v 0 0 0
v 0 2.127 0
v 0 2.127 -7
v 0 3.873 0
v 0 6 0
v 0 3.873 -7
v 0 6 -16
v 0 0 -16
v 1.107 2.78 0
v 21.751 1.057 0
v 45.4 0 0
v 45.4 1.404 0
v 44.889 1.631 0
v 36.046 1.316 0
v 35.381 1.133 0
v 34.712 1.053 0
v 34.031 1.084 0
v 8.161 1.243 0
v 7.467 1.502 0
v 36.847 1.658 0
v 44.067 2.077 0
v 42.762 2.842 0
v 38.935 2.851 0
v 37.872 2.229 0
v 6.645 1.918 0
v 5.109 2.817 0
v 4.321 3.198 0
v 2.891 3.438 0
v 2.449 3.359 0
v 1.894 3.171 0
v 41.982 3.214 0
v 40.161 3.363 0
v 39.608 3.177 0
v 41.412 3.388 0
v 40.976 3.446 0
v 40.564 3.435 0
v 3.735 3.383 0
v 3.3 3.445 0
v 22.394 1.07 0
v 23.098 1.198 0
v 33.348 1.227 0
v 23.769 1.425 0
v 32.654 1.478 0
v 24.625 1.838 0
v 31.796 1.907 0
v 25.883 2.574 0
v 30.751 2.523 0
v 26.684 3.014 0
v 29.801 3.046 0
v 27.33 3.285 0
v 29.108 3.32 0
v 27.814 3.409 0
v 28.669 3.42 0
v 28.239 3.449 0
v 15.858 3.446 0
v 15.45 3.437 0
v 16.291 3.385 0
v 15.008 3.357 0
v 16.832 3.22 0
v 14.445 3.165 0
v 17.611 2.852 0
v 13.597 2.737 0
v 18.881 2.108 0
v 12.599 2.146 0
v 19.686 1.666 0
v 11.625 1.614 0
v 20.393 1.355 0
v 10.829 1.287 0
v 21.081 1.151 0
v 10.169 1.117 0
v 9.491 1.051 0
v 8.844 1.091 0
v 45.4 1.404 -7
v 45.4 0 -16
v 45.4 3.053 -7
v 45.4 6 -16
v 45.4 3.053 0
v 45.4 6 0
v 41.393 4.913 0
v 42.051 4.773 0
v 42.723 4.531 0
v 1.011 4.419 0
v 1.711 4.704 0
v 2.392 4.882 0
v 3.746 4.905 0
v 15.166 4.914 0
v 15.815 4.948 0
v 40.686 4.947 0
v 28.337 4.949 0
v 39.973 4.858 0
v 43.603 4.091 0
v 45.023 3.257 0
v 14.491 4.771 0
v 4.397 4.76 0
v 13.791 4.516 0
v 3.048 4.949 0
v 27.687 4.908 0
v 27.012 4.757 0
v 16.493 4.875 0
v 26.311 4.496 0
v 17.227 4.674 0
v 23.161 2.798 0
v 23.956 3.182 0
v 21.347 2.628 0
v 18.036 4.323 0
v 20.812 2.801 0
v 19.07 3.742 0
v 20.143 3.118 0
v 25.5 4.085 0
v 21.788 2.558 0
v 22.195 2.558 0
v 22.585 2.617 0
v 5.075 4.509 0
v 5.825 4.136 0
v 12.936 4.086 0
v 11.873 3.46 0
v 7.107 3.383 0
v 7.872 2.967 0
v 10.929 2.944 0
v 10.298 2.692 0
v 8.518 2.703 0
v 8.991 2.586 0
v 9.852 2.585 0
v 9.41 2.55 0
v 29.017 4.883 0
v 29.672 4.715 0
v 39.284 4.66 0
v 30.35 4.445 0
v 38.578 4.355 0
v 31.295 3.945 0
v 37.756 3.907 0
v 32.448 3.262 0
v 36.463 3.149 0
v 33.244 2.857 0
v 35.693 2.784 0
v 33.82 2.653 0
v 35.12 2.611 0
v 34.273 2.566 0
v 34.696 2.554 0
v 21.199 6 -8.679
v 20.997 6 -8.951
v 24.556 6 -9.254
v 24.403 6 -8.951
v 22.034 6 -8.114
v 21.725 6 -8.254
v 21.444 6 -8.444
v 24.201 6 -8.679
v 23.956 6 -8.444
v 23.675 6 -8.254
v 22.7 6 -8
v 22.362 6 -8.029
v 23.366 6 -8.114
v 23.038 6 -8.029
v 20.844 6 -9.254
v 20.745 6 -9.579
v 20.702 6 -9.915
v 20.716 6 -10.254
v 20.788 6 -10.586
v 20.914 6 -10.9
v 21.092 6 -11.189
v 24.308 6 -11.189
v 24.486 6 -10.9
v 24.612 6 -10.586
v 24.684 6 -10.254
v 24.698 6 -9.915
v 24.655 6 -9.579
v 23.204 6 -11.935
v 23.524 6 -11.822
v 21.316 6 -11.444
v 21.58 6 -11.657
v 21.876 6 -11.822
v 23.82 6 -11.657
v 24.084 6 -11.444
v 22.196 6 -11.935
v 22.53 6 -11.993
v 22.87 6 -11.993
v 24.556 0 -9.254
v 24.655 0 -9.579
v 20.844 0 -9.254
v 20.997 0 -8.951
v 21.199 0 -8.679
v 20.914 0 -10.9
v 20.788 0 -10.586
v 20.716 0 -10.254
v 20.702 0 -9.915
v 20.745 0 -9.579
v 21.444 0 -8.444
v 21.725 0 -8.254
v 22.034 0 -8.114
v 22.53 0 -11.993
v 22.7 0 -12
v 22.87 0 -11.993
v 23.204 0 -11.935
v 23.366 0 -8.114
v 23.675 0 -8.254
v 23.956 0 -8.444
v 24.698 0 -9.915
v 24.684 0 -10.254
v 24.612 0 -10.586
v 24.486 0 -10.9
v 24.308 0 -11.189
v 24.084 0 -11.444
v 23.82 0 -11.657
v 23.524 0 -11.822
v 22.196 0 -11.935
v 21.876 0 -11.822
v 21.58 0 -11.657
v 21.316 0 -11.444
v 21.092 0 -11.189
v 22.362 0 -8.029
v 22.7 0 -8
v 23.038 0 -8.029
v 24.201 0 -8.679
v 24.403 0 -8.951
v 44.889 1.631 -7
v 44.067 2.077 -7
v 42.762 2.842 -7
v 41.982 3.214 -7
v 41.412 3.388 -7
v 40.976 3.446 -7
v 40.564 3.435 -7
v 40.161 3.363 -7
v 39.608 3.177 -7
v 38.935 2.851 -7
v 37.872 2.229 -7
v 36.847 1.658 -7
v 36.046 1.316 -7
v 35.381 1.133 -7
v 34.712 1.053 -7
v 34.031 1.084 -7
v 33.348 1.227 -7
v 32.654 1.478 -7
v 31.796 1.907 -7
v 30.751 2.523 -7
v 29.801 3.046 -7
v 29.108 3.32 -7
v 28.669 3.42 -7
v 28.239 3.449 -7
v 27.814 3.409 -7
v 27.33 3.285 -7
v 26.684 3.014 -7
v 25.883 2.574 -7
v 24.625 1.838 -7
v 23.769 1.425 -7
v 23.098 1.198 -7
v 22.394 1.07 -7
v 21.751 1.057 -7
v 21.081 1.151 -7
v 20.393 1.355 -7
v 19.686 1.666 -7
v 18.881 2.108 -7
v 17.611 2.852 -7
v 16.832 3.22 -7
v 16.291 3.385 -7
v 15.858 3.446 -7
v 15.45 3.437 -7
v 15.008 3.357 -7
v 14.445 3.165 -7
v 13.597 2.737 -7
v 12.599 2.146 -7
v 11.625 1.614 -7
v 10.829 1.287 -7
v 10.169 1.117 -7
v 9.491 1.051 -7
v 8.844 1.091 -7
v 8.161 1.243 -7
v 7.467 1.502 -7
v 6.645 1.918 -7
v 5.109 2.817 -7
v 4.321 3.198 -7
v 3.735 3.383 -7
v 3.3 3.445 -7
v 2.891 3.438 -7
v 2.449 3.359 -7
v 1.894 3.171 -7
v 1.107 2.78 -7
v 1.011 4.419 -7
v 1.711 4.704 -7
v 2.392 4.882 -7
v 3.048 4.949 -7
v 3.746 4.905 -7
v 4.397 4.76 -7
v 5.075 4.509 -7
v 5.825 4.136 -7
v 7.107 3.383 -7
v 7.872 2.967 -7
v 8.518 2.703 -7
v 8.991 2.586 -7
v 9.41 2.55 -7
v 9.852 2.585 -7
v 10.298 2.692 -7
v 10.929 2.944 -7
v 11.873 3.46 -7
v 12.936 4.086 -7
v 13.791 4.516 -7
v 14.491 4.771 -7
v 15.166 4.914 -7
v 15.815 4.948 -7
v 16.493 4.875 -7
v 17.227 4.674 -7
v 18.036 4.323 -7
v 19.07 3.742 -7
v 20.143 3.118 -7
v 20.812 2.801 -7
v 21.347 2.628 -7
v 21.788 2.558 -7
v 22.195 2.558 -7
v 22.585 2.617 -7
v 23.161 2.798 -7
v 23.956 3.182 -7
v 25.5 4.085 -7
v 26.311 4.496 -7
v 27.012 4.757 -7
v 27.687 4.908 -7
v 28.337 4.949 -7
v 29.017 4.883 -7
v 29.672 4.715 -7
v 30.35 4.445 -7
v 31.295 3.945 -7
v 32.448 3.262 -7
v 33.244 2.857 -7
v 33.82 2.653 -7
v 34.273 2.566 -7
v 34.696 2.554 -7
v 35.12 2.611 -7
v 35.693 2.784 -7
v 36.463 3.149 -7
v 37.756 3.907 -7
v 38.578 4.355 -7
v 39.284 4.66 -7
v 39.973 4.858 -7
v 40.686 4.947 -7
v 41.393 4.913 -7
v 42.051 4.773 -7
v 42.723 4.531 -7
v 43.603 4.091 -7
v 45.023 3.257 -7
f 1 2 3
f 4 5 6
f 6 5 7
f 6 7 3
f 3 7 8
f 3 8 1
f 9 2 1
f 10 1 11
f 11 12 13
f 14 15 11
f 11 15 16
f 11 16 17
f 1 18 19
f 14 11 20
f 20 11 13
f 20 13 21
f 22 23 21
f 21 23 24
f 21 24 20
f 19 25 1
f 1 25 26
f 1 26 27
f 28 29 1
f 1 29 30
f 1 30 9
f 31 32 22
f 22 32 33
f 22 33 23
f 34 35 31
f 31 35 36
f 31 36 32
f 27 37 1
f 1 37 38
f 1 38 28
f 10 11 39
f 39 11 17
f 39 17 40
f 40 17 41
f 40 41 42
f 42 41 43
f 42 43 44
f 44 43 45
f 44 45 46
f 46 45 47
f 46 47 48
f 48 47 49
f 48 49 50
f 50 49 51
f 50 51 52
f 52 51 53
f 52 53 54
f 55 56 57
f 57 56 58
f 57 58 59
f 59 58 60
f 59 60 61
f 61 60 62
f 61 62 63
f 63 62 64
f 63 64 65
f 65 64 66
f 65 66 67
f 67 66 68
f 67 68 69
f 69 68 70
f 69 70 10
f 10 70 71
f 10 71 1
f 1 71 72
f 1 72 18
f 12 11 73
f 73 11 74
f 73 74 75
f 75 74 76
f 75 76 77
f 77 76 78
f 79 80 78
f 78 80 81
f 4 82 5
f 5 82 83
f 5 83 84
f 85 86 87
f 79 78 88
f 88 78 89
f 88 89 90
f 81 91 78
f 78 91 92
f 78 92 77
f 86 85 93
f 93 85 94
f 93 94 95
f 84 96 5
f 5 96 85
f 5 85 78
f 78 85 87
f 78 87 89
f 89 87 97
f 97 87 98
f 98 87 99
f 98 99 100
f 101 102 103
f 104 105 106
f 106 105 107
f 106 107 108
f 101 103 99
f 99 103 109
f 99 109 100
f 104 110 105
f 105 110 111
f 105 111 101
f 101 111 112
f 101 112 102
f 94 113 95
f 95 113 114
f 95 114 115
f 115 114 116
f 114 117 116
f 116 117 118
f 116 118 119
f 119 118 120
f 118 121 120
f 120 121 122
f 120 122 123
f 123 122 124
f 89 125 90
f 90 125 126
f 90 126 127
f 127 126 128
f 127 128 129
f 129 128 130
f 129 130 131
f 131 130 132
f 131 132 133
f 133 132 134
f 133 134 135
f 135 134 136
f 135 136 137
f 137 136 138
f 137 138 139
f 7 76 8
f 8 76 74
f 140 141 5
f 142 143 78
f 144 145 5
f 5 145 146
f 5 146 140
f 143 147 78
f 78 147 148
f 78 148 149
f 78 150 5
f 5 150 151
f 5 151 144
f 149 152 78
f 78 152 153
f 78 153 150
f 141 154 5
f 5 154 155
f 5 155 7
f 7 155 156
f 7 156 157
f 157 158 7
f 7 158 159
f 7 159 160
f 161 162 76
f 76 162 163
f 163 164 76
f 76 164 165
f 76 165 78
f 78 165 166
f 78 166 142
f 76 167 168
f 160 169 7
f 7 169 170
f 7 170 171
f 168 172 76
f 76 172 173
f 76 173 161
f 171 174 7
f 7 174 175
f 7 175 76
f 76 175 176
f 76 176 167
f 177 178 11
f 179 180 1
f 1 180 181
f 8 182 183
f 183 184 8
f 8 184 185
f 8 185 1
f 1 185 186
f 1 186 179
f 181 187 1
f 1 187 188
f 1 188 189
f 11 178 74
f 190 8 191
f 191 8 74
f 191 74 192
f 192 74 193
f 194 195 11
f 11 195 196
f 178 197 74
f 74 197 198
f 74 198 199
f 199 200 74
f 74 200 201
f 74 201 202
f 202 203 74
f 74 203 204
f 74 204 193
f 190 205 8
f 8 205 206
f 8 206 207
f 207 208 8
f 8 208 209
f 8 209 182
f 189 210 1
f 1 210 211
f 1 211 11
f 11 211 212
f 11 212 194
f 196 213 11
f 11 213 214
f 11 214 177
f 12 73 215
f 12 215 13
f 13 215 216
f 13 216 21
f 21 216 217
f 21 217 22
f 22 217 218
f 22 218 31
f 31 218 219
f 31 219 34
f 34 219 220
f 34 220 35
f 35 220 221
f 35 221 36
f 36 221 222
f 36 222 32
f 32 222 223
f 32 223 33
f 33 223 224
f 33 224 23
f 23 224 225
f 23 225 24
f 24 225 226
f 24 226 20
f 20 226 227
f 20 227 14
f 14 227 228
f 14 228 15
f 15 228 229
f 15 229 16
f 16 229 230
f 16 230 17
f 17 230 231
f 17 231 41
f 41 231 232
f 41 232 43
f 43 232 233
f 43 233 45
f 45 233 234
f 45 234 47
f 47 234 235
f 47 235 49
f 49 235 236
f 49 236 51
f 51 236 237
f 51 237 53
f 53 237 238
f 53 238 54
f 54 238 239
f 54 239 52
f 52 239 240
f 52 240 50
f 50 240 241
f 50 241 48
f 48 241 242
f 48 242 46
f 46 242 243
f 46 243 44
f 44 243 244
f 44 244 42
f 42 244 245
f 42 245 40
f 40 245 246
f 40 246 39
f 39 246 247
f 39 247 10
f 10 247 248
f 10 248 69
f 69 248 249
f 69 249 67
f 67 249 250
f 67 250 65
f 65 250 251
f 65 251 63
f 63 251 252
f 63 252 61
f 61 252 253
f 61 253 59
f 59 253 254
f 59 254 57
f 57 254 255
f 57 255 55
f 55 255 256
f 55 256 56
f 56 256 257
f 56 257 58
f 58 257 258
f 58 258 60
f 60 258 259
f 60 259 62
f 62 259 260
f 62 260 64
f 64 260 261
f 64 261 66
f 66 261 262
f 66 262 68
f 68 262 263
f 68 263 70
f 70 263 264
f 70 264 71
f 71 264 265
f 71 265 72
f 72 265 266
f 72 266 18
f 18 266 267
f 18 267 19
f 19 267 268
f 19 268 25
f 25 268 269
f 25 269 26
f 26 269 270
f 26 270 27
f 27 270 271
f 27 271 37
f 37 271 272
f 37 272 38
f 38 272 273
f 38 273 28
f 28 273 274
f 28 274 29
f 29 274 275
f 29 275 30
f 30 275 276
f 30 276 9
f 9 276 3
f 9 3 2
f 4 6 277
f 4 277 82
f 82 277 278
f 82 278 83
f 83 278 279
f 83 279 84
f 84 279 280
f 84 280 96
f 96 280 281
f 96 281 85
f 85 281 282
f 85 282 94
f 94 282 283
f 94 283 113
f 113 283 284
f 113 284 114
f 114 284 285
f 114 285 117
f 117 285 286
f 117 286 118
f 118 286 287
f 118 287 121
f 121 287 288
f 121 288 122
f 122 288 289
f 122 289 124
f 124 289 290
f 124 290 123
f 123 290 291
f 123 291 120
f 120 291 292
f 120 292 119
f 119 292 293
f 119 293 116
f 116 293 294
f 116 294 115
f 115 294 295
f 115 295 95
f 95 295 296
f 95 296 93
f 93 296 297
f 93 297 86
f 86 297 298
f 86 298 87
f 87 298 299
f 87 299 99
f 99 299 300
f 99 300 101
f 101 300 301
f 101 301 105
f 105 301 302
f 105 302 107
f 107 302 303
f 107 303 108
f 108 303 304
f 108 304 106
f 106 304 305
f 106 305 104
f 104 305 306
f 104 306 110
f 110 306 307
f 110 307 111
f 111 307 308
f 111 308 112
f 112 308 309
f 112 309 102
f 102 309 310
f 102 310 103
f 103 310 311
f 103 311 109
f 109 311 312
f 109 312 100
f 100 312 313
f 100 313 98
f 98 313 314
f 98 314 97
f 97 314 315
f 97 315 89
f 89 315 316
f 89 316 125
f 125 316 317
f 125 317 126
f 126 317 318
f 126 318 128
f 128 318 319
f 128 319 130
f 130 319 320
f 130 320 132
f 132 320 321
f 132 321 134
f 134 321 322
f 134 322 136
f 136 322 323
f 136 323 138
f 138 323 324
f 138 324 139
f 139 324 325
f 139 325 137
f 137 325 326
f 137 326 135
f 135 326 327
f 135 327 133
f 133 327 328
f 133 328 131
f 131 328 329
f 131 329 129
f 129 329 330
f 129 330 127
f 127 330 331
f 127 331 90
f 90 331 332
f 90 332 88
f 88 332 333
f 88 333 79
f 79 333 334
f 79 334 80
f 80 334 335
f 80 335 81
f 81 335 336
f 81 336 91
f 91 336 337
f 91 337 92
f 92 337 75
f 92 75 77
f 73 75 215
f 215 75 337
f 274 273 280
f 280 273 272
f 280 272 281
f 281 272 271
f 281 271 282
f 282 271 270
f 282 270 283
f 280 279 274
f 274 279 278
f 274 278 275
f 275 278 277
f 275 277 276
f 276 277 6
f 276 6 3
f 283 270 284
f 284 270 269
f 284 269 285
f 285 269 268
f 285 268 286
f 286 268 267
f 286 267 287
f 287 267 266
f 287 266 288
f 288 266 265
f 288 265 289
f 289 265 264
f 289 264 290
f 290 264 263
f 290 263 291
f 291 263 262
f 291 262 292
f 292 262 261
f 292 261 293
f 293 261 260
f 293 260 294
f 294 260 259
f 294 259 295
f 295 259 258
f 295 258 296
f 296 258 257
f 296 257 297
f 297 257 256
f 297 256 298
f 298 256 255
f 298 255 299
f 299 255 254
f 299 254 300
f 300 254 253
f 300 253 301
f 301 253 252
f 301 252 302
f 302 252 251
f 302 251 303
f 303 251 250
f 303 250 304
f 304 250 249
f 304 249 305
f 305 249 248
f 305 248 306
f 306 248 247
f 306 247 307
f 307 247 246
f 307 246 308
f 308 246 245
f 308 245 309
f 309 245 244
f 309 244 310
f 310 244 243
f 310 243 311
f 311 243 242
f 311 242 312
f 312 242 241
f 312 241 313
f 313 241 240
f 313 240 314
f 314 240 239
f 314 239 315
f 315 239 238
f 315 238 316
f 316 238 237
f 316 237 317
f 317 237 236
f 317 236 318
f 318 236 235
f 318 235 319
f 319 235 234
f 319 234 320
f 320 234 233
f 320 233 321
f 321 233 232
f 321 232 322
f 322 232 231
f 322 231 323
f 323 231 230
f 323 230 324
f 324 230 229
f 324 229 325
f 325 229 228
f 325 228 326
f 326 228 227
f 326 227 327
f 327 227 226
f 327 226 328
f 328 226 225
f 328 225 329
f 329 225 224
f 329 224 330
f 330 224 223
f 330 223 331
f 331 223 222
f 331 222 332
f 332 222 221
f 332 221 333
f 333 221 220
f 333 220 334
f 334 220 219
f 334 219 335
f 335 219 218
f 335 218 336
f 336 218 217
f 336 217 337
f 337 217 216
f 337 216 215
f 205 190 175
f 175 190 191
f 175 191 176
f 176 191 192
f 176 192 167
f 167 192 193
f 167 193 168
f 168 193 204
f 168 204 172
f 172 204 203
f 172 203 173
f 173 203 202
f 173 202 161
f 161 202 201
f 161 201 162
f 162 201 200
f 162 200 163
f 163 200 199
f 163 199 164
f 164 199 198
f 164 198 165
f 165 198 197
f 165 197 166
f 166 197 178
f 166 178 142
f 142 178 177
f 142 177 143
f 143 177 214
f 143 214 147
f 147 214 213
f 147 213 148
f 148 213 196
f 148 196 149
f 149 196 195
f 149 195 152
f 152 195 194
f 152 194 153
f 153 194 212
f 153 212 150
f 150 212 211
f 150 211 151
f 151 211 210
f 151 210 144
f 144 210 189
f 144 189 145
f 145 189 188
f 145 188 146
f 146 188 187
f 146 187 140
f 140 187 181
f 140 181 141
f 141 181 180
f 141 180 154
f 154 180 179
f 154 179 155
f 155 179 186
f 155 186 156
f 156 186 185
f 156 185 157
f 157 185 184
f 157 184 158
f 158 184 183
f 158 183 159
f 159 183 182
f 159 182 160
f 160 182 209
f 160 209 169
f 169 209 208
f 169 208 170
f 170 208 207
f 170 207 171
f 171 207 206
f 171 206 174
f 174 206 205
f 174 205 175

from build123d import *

# Parameters (mm, degrees)
SKETCH1_W               = 45.4
SKETCH1_H               = 16
BOSS_EXTRUDE1_DEPTH     = 6
CUT_EXTRUDE_THIN1_START = -7
CUT_EXTRUDE_THIN1_DEPTH = 7
SKETCH3_R               = 2
CUT_EXTRUDE4_DEPTH      = 10


# Read off the part's stored shape, not the designer's step: Cut-Extrude-Thin1
with BuildPart() as part:
    # Sketch1 → Boss-Extrude1 (new body)
    with BuildSketch(Plane(origin=(0, 0, 0), x_dir=(1, 0, 0), z_dir=(0, 1, 0))):
        with Locations((22.7, 8)):
            Rectangle(SKETCH1_W, SKETCH1_H)
    extrude(amount=BOSS_EXTRUDE1_DEPTH)

    # Cut-Extrude-Thin1 outline → Cut-Extrude-Thin1 (cut)
    with BuildSketch(Plane.XY.offset(CUT_EXTRUDE_THIN1_START)):
        with BuildLine():
            Line((0, 3.873267445), (0, 2.126817741))
            add(Edge.make_bspline(
                [(0, 2.126817741), (0.02703382, 2.142781723), (0.054175194, 2.15885723), (0.199802786, 2.245191001), (0.318904635, 2.316609427), (0.547456156, 2.453801634), (0.659404505, 2.520881504), (1.223235747, 2.852563391), (1.659129881, 3.090081368), (2.304021331, 3.325798968), (2.516053427, 3.383726921), (2.935514936, 3.449959162), (3.142910642, 3.458369463), (3.767815623, 3.407863189), (4.19408996, 3.269324885), (5.065062464, 2.858321616), (5.50706417, 2.591187682), (6.431683782, 2.036459554), (6.918071796, 1.744087969), (7.740579172, 1.381104099), (8.030251466, 1.273290225), (8.645579036, 1.112784531), (8.970876862, 1.062103691), (9.62744136, 1.04193798), (9.958039149, 1.072725046), (10.589024972, 1.202402245), (10.888026805, 1.299103066), (11.452805261, 1.525556109), (11.718970495, 1.655461765), (12.226161625, 1.926507336), (12.467522401, 2.067716558), (13.170775959, 2.486480844), (13.615931783, 2.76197178), (14.271958768, 3.092921072), (14.487846746, 3.188741776), (14.917075207, 3.339470443), (15.130272064, 3.394343156), (15.548156295, 3.45349324), (15.75427037, 3.457987949), (16.172816849, 3.416681909), (16.383607329, 3.371026255), (17.022785721, 3.167898464), (17.460128234, 2.943866168), (18.351607435, 2.430583519), (18.80881458, 2.139021166), (19.556952632, 1.727762653), (19.816902465, 1.594900544), (20.369439987, 1.356573587), (20.663597747, 1.251179423), (21.283479066, 1.10005025), (21.609016745, 1.054814487), (22.266771634, 1.045847552), (22.596742032, 1.083145554), (23.222365778, 1.221962497), (23.519472543, 1.321980696), (24.079382347, 1.553570863), (24.342766312, 1.684865845), (25.098173394, 2.093571519), (25.557376229, 2.385193139), (26.452683258, 2.906328822), (26.887914853, 3.135436001), (27.746180841, 3.425860973), (28.158539125, 3.480470405), (28.786299796, 3.408170386), (28.995968884, 3.359210465), (29.423947166, 3.216861002), (29.641162564, 3.124110993), (30.296525986, 2.802852497), (30.738363236, 2.530814809), (31.671813969, 1.97293848), (32.163881244, 1.683121755), (33.000138587, 1.332534814), (33.296467876, 1.230806571), (33.92016789, 1.088242868), (34.248675292, 1.048205652), (34.907059265, 1.051622384), (35.233888776, 1.094812192), (35.854823483, 1.241938496), (36.150275582, 1.345434697), (36.705793014, 1.582138569), (36.966535771, 1.714713739), (37.46618007, 1.988138513), (37.705434355, 2.129457341), (38.404356673, 2.547696158), (38.845749072, 2.818233186), (39.500657349, 3.136109655), (39.717214125, 3.227177696), (40.144711185, 3.365892553), (40.354662828, 3.412992927), (40.773030437, 3.457293529), (40.980435207, 3.454517198), (41.398028958, 3.398951825), (41.610067714, 3.345773528), (42.253288523, 3.123436571), (42.689155986, 2.891534001), (43.585746337, 2.368048308), (44.045555086, 2.076103322), (44.804100753, 1.668638949), (45.068118248, 1.538339158), (45.366705882, 1.416907758), (45.383339369, 1.410218973), (45.4, 1.403598957)],
                knots=[0.01380316, 0.01380316, 0.01380316, 0.01380316, 0.015625, 0.015625, 0.0234375, 0.0234375, 0.03125, 0.03125, 0.0625, 0.0625, 0.078125, 0.078125, 0.09375, 0.09375, 0.125, 0.125, 0.15625, 0.15625, 0.1875, 0.1875, 0.203125, 0.203125, 0.21875, 0.21875, 0.234375, 0.234375, 0.25, 0.25, 0.265625, 0.265625, 0.28125, 0.28125, 0.3125, 0.3125, 0.328125, 0.328125, 0.34375, 0.34375, 0.359375, 0.359375, 0.375, 0.375, 0.40625, 0.40625, 0.4375, 0.4375, 0.453125, 0.453125, 0.46875, 0.46875, 0.484375, 0.484375, 0.5, 0.5, 0.515625, 0.515625, 0.53125, 0.53125, 0.5625, 0.5625, 0.59375, 0.59375, 0.625, 0.625, 0.640625, 0.640625, 0.65625, 0.65625, 0.6875, 0.6875, 0.71875, 0.71875, 0.734375, 0.734375, 0.75, 0.75, 0.765625, 0.765625, 0.78125, 0.78125, 0.796875, 0.796875, 0.8125, 0.8125, 0.84375, 0.84375, 0.859375, 0.859375, 0.875, 0.875, 0.890625, 0.890625, 0.90625, 0.90625, 0.9375, 0.9375, 0.96875, 0.96875, 0.984375, 0.984375, 0.985295787, 0.985295787, 0.985295787, 0.985295787], degree=3))
            Line((45.4, 1.403598957), (45.400000004, 3.052714))
            add(Edge.make_bspline(
                [(0, 3.873267445), (0.003867713, 3.875545356), (0.007738546, 3.877823787), (0.250469006, 4.020613492), (0.495079597, 4.160053663), (1.012890651, 4.425250629), (1.284740564, 4.550297134), (1.86347111, 4.76183192), (2.171314028, 4.847876947), (2.81235644, 4.949096426), (3.145282675, 4.963068961), (3.798820837, 4.910248487), (4.117293225, 4.844555634), (4.718708859, 4.662401706), (5.002040385, 4.546684188), (5.805070872, 4.167742082), (6.282596051, 3.875154302), (7.19954989, 3.325025275), (7.637556428, 3.066144173), (8.289263977, 2.778536627), (8.504994239, 2.69964625), (8.928037725, 2.589297078), (9.136444307, 2.5577258), (9.553972433, 2.544901849), (9.761498066, 2.56368264), (10.181642273, 2.650028675), (10.396038802, 2.717920292), (11.044459748, 2.97791055), (11.480747342, 3.225921565), (12.388245941, 3.766307033), (12.856524649, 4.058933488), (13.638246286, 4.453292605), (13.913435199, 4.576828438), (14.497506198, 4.7819319), (14.80657005, 4.863476297), (15.451409614, 4.954751133), (15.785477854, 4.962195082), (16.436245788, 4.89797128), (16.752702226, 4.827653432), (17.349238381, 4.638077136), (17.629199854, 4.520162486), (18.160549165, 4.264517545), (18.412038425, 4.126652649), (19.138888817, 3.708157529), (19.588011382, 3.422386166), (20.472304829, 2.936281753), (20.905689258, 2.736093288), (21.540410043, 2.581346203), (21.750486993, 2.553025254), (22.166195505, 2.54735805), (22.37309431, 2.570002638), (23.007695036, 2.710811445), (23.43961466, 2.901695121), (24.321951208, 3.379074751), (24.769938492, 3.662450532), (25.49069199, 4.081982999), (25.739774147, 4.221113848), (26.265324427, 4.481051988), (26.542139405, 4.601982239), (27.130361027, 4.801028048), (27.443653593, 4.878863839), (28.09178915, 4.958640067), (28.424563097, 4.959747626), (29.072774338, 4.885092288), (29.387887281, 4.80965047), (29.978856326, 4.6130888), (30.256280206, 4.493108966), (31.047007705, 4.105495135), (31.519931981, 3.811184839), (32.42927946, 3.267713808), (32.86899683, 3.013998451), (33.733669543, 2.651498841), (34.155257129, 2.54774105), (34.984908919, 2.552046589), (35.407860618, 2.659586891), (36.056133151, 2.93581336), (36.27510638, 3.046251422), (36.71743538, 3.288311037), (36.940487753, 3.419765313), (37.623548397, 3.828512419), (38.098120254, 4.122708489), (38.891992645, 4.508034742), (39.171037756, 4.62694392), (39.764967834, 4.8196632), (40.081148481, 4.892416665), (40.730643342, 4.961191141), (41.063783913, 4.956647377), (41.710375198, 4.870611401), (42.021587579, 4.790610545), (42.607447829, 4.58810095), (42.883262745, 4.465659864), (43.406242203, 4.204194984), (43.654228228, 4.065020041), (44.372851449, 3.645442724), (44.820928505, 3.362312101), (45.307481866, 3.100952543), (45.353788309, 3.07654159), (45.400000004, 3.052714)],
                knots=[0.030996579, 0.030996579, 0.030996579, 0.030996579, 0.03125, 0.03125, 0.046875, 0.046875, 0.0625, 0.0625, 0.078125, 0.078125, 0.09375, 0.09375, 0.109375, 0.109375, 0.125, 0.125, 0.15625, 0.15625, 0.1875, 0.1875, 0.203125, 0.203125, 0.21875, 0.21875, 0.234375, 0.234375, 0.25, 0.25, 0.28125, 0.28125, 0.3125, 0.3125, 0.328125, 0.328125, 0.34375, 0.34375, 0.359375, 0.359375, 0.375, 0.375, 0.390625, 0.390625, 0.40625, 0.40625, 0.4375, 0.4375, 0.46875, 0.46875, 0.484375, 0.484375, 0.5, 0.5, 0.53125, 0.53125, 0.5625, 0.5625, 0.578125, 0.578125, 0.59375, 0.59375, 0.609375, 0.609375, 0.625, 0.625, 0.640625, 0.640625, 0.65625, 0.65625, 0.6875, 0.6875, 0.71875, 0.71875, 0.75, 0.75, 0.78125, 0.78125, 0.796875, 0.796875, 0.8125, 0.8125, 0.84375, 0.84375, 0.859375, 0.859375, 0.875, 0.875, 0.890625, 0.890625, 0.90625, 0.90625, 0.921875, 0.921875, 0.9375, 0.9375, 0.96875, 0.96875, 0.972044951, 0.972044951, 0.972044951, 0.972044951], degree=3))
        make_face()
    extrude(amount=CUT_EXTRUDE_THIN1_DEPTH, mode=Mode.SUBTRACT)

    # Sketch3 → Cut-Extrude4 (cut)
    with BuildSketch(Plane(origin=(0, 6, 0), x_dir=(1, 0, 0), z_dir=(0, 1, 0))):
        with Locations(Location((22.7, 10, 0), (0, 0, 270))):
            Circle(SKETCH3_R)
    extrude(amount=-CUT_EXTRUDE4_DEPTH, mode=Mode.SUBTRACT)


solid = part.part
